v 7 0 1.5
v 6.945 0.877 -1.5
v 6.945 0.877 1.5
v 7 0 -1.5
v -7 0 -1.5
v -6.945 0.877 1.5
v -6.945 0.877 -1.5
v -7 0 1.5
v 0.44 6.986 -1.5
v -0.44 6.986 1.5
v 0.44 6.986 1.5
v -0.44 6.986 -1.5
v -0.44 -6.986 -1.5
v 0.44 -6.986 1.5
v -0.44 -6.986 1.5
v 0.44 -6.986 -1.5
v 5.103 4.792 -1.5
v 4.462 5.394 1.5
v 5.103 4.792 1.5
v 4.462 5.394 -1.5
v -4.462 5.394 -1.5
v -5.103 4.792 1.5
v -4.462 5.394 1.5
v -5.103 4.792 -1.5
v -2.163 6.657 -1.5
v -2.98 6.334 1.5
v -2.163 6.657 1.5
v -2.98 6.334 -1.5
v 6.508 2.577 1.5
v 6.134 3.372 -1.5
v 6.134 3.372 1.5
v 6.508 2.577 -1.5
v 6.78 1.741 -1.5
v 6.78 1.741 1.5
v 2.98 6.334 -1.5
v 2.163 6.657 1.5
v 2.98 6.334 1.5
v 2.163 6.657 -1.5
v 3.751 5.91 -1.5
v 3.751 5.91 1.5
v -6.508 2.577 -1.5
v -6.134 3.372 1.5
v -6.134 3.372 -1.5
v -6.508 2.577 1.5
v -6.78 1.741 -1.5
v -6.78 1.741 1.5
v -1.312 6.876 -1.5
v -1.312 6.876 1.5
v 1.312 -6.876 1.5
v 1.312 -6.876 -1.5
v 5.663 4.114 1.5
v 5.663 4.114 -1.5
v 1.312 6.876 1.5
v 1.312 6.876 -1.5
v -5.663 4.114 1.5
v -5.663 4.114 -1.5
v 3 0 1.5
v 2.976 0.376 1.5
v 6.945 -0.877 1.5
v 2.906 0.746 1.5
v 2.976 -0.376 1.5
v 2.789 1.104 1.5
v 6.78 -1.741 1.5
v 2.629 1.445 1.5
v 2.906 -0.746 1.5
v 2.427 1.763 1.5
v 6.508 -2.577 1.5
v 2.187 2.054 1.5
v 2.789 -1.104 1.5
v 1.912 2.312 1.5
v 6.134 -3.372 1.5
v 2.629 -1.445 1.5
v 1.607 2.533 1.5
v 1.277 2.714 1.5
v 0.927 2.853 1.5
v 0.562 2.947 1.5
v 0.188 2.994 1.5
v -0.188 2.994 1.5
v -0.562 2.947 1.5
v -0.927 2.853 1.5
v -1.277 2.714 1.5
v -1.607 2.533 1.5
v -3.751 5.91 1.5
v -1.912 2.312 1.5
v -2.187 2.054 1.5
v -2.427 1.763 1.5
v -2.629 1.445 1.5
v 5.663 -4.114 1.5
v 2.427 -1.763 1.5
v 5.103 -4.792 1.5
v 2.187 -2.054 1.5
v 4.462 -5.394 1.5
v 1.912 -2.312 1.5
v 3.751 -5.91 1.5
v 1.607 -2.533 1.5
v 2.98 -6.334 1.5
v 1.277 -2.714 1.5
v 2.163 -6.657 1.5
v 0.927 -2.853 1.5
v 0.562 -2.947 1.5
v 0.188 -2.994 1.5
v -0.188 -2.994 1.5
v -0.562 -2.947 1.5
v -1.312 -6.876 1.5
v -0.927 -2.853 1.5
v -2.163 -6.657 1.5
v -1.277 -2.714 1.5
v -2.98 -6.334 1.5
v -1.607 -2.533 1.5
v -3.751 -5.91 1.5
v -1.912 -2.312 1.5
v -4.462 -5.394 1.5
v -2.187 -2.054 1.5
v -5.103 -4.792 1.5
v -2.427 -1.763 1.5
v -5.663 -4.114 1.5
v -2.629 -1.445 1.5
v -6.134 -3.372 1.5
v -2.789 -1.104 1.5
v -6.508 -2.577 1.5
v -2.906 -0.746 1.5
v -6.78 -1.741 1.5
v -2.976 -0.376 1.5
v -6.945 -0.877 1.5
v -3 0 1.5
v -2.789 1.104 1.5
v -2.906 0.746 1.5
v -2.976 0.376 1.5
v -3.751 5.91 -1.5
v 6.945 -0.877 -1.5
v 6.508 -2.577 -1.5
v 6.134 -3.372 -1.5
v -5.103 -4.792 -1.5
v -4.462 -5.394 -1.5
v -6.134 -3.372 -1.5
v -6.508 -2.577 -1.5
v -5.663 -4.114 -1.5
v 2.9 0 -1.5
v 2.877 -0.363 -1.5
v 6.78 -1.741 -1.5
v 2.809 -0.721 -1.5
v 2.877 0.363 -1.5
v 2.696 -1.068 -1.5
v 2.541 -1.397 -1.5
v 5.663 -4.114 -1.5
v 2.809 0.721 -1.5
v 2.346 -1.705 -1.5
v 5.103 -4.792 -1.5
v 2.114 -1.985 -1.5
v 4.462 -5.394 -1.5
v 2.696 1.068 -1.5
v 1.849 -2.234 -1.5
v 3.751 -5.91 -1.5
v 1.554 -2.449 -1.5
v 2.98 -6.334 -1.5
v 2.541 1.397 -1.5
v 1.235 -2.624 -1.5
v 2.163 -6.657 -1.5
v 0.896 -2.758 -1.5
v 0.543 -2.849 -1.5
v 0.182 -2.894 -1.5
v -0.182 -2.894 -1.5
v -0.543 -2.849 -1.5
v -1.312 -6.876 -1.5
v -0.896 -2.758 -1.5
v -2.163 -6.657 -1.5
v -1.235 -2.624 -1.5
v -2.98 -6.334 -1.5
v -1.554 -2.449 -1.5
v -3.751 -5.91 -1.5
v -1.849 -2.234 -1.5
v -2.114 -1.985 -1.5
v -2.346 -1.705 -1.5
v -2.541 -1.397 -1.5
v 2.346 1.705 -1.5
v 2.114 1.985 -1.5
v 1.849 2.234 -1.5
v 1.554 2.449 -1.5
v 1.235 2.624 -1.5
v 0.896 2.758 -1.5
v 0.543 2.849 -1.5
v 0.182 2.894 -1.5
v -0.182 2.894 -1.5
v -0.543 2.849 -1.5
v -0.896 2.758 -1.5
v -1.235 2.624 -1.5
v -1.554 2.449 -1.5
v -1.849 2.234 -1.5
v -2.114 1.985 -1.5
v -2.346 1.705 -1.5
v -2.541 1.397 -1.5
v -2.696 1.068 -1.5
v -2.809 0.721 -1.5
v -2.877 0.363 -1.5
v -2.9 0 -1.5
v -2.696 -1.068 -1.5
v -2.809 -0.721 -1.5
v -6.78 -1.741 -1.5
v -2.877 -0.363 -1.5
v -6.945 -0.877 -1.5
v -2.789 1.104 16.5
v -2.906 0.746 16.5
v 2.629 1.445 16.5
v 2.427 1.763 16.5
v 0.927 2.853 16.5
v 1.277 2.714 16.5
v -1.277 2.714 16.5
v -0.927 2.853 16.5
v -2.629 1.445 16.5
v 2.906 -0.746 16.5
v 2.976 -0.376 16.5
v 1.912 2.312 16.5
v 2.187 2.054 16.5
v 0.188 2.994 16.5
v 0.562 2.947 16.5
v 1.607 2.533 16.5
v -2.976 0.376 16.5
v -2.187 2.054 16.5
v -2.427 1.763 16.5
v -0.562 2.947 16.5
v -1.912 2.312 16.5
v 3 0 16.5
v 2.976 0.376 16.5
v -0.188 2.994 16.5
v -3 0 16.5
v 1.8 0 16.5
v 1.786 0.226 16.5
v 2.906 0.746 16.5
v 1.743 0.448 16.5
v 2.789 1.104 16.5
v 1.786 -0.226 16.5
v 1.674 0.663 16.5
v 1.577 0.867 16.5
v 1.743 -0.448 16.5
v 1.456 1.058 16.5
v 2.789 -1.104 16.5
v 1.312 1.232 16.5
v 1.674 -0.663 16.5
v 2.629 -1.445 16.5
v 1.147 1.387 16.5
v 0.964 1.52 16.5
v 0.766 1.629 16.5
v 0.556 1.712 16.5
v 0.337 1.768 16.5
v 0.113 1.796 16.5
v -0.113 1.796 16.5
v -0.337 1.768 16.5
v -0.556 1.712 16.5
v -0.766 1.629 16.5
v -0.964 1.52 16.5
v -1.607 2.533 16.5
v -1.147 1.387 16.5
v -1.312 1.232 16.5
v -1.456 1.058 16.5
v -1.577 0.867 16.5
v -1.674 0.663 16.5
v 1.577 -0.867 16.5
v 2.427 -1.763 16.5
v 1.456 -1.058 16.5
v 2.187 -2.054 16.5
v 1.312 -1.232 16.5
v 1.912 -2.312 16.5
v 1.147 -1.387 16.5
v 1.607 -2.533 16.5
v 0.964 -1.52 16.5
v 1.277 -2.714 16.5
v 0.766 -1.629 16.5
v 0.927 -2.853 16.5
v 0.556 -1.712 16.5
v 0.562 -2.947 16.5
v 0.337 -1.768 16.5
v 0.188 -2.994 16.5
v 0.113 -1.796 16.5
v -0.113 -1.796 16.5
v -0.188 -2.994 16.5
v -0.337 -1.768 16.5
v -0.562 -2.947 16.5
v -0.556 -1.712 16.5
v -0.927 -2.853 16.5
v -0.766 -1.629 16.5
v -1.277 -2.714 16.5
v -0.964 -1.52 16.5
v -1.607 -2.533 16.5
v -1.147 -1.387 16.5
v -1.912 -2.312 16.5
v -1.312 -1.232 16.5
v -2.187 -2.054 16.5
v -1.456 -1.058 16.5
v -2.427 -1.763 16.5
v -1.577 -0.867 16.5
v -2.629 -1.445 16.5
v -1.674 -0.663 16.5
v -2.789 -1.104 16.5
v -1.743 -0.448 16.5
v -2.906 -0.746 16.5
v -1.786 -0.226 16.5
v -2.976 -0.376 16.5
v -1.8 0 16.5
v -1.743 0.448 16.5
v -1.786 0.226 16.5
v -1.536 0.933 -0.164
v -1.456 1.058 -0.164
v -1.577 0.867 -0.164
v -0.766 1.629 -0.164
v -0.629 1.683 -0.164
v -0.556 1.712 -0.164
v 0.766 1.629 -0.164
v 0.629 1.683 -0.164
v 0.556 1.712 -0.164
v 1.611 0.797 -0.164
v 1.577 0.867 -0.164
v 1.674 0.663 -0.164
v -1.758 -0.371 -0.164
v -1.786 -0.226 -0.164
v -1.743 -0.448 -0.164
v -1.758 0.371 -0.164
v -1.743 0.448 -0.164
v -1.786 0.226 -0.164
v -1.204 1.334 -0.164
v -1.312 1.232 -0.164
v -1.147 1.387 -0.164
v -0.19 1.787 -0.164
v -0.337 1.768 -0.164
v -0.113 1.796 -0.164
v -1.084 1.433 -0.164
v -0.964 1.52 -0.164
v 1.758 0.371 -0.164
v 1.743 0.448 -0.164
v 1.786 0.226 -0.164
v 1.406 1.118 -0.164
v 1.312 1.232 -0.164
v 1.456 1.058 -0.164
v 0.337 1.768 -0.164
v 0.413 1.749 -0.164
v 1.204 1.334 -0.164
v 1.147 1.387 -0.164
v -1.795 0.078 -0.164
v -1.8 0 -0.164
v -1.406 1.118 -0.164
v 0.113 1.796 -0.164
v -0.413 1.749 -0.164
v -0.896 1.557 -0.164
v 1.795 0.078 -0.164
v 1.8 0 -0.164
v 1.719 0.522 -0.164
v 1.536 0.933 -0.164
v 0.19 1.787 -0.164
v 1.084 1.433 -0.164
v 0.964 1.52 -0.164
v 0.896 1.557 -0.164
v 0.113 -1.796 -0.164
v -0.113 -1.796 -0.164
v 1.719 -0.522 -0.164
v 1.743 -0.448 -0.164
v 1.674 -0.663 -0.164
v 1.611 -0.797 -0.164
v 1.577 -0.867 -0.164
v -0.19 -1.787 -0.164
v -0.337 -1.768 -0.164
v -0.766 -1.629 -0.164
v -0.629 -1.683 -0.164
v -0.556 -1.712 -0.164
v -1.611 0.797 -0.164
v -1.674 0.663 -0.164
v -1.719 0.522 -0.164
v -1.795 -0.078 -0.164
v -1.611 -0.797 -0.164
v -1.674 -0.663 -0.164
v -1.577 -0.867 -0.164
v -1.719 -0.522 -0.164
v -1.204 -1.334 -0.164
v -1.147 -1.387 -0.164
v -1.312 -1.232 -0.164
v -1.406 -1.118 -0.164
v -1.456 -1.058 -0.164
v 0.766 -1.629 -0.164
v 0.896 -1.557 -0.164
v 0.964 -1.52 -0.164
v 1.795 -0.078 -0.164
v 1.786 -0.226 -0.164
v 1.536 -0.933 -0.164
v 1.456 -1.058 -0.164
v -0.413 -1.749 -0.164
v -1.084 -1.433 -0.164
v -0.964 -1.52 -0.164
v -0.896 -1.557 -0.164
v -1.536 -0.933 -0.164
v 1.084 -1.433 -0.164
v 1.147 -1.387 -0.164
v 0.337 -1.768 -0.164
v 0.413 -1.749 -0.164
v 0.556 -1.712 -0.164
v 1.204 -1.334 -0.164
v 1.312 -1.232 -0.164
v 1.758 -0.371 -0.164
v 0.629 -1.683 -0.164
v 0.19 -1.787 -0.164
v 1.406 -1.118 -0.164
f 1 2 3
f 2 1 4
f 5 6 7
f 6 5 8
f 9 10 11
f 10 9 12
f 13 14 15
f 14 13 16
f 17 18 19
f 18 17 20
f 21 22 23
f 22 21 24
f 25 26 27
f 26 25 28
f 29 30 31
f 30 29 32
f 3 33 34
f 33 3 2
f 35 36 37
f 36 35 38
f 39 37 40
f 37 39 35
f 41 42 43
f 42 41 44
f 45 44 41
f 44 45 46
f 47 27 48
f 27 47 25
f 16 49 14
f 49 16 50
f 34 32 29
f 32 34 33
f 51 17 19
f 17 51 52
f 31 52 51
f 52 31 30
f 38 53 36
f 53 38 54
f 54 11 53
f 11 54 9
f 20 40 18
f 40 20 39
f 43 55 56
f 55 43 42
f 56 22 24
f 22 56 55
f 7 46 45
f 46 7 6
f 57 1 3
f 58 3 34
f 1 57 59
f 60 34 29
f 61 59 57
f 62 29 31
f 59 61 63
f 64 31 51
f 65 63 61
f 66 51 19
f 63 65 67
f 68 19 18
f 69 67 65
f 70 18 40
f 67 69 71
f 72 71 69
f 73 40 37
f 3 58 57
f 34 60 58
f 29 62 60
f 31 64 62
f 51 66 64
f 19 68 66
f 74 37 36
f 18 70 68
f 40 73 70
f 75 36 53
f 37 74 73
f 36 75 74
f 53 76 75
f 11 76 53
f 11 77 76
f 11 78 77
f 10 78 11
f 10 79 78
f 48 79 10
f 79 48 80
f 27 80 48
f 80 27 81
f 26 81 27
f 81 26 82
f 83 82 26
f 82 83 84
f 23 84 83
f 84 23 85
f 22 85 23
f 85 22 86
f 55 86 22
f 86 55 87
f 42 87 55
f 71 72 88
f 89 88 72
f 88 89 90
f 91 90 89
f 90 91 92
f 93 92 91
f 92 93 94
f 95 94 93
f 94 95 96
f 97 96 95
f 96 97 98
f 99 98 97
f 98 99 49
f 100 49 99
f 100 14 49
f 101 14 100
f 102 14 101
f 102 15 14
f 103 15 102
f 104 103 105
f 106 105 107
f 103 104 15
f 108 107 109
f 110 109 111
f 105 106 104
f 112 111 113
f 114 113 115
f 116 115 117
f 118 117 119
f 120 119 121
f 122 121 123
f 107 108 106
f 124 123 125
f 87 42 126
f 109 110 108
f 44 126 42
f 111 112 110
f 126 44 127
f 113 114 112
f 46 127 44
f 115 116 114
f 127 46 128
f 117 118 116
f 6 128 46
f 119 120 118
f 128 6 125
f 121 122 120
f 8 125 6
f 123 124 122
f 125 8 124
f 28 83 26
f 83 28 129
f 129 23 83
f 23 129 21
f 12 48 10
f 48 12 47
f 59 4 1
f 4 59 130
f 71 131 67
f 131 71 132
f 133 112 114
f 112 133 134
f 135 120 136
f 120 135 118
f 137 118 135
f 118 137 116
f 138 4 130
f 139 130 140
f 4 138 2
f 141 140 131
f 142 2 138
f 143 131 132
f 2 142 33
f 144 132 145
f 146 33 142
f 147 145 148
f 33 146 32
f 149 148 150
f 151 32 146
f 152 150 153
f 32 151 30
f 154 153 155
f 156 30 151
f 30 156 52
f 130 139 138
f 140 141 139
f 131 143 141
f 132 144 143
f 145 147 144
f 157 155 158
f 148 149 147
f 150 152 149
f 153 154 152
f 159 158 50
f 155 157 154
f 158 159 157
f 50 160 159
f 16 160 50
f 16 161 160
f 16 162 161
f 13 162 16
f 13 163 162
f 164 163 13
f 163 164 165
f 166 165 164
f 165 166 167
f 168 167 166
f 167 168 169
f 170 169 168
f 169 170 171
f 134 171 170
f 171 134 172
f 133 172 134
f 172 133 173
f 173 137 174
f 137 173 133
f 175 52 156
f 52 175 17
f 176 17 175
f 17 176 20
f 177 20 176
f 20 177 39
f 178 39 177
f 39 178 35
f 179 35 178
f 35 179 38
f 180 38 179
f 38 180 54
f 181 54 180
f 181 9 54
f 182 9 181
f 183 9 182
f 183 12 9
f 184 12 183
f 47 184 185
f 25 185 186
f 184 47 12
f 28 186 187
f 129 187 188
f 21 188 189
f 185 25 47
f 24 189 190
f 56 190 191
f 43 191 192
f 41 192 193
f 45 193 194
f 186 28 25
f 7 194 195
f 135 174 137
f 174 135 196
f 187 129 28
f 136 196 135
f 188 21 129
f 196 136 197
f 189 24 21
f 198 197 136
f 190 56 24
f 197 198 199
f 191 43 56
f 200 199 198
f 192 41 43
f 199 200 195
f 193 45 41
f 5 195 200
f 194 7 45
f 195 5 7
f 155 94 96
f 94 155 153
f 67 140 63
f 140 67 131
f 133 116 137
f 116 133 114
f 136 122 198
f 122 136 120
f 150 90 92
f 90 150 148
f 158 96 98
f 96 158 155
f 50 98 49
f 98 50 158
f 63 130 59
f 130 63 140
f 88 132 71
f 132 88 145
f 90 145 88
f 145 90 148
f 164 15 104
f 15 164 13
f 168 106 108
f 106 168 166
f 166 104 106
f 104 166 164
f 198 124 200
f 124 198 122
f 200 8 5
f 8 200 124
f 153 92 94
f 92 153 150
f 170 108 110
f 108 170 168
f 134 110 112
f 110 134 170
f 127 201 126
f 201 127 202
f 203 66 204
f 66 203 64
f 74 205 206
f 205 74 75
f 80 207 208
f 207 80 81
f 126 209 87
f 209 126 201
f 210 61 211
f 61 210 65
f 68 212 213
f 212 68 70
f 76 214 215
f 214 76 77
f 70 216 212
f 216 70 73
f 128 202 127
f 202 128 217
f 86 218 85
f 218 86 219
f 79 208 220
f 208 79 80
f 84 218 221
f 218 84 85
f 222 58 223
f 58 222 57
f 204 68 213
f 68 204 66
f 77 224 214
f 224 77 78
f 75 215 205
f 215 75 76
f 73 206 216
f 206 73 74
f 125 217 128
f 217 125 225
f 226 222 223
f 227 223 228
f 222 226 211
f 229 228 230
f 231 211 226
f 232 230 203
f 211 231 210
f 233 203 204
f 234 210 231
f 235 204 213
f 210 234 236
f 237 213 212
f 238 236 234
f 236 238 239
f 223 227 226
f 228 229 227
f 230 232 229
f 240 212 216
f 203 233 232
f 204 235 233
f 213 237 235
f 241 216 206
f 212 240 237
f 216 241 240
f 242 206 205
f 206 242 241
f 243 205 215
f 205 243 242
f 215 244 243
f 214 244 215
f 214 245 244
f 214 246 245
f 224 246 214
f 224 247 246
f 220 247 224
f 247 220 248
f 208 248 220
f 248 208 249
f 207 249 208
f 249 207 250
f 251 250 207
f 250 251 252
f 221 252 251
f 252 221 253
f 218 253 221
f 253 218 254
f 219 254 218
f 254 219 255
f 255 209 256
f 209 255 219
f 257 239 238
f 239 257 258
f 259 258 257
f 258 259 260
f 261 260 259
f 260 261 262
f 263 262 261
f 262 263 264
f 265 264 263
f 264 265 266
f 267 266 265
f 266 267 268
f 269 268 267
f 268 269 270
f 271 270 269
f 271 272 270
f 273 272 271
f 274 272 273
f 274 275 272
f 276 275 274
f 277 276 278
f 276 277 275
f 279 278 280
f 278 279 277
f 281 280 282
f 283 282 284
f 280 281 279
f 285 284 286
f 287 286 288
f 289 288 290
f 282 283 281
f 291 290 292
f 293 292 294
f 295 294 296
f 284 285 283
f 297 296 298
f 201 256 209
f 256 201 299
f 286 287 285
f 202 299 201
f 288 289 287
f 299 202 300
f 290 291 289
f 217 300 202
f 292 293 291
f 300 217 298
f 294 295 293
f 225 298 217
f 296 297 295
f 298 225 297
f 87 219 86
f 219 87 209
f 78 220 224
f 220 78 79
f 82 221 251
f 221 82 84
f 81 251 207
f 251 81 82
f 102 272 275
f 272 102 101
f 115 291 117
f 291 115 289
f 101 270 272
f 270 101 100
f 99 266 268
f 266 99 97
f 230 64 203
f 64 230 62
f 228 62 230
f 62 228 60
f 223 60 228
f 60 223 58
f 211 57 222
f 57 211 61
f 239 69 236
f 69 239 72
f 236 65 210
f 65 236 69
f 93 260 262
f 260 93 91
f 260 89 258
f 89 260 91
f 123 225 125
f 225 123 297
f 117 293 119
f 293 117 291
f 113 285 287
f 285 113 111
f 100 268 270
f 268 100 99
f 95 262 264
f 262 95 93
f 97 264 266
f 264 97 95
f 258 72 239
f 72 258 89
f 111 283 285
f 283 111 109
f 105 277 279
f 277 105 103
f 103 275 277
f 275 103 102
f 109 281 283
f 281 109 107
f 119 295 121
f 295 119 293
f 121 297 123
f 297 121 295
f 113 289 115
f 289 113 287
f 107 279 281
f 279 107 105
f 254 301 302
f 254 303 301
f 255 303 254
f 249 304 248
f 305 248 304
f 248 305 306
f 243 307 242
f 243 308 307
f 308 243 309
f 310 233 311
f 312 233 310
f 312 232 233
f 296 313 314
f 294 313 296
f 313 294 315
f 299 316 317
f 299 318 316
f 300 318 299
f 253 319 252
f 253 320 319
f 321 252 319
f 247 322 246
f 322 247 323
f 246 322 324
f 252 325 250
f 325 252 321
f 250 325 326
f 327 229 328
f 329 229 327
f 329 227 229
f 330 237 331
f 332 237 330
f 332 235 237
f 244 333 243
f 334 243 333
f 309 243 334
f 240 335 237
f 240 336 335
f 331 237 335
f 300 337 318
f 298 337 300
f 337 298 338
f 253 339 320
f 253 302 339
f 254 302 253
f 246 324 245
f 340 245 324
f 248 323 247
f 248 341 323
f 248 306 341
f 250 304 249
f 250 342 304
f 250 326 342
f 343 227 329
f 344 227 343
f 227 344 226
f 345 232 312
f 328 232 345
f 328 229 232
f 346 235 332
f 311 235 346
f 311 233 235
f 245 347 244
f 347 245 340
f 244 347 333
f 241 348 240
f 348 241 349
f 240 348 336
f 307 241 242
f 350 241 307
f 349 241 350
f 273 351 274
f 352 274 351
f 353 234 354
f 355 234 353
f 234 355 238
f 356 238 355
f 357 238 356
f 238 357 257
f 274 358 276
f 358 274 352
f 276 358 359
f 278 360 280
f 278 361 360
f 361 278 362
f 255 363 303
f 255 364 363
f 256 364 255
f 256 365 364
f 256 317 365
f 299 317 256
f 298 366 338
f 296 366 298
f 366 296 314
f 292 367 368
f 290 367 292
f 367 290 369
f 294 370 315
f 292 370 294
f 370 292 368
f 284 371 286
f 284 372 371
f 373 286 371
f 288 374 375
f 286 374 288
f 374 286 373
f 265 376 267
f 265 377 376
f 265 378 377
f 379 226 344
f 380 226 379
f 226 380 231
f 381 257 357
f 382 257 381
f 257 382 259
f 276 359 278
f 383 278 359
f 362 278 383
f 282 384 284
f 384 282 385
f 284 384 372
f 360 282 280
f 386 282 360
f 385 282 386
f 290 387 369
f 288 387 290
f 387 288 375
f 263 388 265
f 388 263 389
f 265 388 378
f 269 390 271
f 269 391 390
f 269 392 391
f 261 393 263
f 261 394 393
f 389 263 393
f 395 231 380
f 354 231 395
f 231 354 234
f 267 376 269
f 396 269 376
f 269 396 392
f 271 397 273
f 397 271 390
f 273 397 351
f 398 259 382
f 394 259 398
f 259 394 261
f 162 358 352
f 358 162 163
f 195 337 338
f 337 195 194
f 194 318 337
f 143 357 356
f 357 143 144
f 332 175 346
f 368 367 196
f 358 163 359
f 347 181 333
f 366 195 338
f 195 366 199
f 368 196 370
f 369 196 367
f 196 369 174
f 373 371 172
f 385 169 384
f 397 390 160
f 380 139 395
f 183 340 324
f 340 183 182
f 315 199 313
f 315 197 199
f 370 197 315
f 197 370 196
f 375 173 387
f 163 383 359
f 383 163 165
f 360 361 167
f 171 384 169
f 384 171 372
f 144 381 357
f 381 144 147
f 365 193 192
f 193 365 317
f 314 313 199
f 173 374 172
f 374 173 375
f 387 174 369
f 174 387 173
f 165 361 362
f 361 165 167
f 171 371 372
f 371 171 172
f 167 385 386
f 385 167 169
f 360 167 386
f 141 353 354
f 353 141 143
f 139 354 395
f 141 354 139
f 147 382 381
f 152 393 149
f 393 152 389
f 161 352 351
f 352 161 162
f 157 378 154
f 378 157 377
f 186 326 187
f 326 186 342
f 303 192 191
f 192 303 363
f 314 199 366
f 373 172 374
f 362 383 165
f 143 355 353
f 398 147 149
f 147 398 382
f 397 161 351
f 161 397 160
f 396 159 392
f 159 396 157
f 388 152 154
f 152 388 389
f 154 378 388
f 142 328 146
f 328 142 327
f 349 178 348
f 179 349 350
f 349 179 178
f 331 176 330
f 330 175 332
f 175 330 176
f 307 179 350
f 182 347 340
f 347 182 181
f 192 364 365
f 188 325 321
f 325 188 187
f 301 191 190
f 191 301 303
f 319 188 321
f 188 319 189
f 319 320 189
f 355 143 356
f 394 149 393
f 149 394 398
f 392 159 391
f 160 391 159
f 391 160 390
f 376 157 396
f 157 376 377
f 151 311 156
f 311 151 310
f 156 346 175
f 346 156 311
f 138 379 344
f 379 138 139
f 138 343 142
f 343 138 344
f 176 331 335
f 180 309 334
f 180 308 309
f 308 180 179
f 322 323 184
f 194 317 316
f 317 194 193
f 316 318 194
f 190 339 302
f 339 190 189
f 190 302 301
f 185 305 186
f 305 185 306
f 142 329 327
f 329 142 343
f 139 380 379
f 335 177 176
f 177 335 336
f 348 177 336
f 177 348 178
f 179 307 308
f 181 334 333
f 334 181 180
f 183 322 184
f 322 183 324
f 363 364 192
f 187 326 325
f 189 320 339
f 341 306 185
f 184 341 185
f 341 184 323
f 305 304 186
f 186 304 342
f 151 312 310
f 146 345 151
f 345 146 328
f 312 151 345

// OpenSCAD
$fn = 50;


difference() {
	union() {
		translate(v = [0, 0, -1.5000000000]) {
			cylinder(h = 3, r = 7.0000000000);
		}
		translate(v = [0, 0, -1.5000000000]) {
			cylinder(h = 18, r = 3.0000000000);
		}
	}
	union() {
		translate(v = [0, 0, -1.5000000000]) {
			rotate(a = [0, 180, 0]) {
				difference() {
					union() {
						translate(v = [0, 0, -18.0000000000]) {
							cylinder(h = 18, r = 1.5000000000);
						}
						translate(v = [0, 0, -18.0000000000]) {
							cylinder(h = 18, r = 1.8000000000);
						}
						translate(v = [0, 0, -1.7000000000]) {
							cylinder(h = 1.7000000000, r1 = 1.5000000000, r2 = 2.9000000000);
						}
						translate(v = [0, 0, -18.0000000000]) {
							cylinder(h = 18, r = 1.5000000000);
						}
					}
					union();
				}
			}
		}
		translate(v = [0, 0, -100.0000000000]) {
			cylinder(h = 200, r = 1.5000000000);
		}
	}
}
